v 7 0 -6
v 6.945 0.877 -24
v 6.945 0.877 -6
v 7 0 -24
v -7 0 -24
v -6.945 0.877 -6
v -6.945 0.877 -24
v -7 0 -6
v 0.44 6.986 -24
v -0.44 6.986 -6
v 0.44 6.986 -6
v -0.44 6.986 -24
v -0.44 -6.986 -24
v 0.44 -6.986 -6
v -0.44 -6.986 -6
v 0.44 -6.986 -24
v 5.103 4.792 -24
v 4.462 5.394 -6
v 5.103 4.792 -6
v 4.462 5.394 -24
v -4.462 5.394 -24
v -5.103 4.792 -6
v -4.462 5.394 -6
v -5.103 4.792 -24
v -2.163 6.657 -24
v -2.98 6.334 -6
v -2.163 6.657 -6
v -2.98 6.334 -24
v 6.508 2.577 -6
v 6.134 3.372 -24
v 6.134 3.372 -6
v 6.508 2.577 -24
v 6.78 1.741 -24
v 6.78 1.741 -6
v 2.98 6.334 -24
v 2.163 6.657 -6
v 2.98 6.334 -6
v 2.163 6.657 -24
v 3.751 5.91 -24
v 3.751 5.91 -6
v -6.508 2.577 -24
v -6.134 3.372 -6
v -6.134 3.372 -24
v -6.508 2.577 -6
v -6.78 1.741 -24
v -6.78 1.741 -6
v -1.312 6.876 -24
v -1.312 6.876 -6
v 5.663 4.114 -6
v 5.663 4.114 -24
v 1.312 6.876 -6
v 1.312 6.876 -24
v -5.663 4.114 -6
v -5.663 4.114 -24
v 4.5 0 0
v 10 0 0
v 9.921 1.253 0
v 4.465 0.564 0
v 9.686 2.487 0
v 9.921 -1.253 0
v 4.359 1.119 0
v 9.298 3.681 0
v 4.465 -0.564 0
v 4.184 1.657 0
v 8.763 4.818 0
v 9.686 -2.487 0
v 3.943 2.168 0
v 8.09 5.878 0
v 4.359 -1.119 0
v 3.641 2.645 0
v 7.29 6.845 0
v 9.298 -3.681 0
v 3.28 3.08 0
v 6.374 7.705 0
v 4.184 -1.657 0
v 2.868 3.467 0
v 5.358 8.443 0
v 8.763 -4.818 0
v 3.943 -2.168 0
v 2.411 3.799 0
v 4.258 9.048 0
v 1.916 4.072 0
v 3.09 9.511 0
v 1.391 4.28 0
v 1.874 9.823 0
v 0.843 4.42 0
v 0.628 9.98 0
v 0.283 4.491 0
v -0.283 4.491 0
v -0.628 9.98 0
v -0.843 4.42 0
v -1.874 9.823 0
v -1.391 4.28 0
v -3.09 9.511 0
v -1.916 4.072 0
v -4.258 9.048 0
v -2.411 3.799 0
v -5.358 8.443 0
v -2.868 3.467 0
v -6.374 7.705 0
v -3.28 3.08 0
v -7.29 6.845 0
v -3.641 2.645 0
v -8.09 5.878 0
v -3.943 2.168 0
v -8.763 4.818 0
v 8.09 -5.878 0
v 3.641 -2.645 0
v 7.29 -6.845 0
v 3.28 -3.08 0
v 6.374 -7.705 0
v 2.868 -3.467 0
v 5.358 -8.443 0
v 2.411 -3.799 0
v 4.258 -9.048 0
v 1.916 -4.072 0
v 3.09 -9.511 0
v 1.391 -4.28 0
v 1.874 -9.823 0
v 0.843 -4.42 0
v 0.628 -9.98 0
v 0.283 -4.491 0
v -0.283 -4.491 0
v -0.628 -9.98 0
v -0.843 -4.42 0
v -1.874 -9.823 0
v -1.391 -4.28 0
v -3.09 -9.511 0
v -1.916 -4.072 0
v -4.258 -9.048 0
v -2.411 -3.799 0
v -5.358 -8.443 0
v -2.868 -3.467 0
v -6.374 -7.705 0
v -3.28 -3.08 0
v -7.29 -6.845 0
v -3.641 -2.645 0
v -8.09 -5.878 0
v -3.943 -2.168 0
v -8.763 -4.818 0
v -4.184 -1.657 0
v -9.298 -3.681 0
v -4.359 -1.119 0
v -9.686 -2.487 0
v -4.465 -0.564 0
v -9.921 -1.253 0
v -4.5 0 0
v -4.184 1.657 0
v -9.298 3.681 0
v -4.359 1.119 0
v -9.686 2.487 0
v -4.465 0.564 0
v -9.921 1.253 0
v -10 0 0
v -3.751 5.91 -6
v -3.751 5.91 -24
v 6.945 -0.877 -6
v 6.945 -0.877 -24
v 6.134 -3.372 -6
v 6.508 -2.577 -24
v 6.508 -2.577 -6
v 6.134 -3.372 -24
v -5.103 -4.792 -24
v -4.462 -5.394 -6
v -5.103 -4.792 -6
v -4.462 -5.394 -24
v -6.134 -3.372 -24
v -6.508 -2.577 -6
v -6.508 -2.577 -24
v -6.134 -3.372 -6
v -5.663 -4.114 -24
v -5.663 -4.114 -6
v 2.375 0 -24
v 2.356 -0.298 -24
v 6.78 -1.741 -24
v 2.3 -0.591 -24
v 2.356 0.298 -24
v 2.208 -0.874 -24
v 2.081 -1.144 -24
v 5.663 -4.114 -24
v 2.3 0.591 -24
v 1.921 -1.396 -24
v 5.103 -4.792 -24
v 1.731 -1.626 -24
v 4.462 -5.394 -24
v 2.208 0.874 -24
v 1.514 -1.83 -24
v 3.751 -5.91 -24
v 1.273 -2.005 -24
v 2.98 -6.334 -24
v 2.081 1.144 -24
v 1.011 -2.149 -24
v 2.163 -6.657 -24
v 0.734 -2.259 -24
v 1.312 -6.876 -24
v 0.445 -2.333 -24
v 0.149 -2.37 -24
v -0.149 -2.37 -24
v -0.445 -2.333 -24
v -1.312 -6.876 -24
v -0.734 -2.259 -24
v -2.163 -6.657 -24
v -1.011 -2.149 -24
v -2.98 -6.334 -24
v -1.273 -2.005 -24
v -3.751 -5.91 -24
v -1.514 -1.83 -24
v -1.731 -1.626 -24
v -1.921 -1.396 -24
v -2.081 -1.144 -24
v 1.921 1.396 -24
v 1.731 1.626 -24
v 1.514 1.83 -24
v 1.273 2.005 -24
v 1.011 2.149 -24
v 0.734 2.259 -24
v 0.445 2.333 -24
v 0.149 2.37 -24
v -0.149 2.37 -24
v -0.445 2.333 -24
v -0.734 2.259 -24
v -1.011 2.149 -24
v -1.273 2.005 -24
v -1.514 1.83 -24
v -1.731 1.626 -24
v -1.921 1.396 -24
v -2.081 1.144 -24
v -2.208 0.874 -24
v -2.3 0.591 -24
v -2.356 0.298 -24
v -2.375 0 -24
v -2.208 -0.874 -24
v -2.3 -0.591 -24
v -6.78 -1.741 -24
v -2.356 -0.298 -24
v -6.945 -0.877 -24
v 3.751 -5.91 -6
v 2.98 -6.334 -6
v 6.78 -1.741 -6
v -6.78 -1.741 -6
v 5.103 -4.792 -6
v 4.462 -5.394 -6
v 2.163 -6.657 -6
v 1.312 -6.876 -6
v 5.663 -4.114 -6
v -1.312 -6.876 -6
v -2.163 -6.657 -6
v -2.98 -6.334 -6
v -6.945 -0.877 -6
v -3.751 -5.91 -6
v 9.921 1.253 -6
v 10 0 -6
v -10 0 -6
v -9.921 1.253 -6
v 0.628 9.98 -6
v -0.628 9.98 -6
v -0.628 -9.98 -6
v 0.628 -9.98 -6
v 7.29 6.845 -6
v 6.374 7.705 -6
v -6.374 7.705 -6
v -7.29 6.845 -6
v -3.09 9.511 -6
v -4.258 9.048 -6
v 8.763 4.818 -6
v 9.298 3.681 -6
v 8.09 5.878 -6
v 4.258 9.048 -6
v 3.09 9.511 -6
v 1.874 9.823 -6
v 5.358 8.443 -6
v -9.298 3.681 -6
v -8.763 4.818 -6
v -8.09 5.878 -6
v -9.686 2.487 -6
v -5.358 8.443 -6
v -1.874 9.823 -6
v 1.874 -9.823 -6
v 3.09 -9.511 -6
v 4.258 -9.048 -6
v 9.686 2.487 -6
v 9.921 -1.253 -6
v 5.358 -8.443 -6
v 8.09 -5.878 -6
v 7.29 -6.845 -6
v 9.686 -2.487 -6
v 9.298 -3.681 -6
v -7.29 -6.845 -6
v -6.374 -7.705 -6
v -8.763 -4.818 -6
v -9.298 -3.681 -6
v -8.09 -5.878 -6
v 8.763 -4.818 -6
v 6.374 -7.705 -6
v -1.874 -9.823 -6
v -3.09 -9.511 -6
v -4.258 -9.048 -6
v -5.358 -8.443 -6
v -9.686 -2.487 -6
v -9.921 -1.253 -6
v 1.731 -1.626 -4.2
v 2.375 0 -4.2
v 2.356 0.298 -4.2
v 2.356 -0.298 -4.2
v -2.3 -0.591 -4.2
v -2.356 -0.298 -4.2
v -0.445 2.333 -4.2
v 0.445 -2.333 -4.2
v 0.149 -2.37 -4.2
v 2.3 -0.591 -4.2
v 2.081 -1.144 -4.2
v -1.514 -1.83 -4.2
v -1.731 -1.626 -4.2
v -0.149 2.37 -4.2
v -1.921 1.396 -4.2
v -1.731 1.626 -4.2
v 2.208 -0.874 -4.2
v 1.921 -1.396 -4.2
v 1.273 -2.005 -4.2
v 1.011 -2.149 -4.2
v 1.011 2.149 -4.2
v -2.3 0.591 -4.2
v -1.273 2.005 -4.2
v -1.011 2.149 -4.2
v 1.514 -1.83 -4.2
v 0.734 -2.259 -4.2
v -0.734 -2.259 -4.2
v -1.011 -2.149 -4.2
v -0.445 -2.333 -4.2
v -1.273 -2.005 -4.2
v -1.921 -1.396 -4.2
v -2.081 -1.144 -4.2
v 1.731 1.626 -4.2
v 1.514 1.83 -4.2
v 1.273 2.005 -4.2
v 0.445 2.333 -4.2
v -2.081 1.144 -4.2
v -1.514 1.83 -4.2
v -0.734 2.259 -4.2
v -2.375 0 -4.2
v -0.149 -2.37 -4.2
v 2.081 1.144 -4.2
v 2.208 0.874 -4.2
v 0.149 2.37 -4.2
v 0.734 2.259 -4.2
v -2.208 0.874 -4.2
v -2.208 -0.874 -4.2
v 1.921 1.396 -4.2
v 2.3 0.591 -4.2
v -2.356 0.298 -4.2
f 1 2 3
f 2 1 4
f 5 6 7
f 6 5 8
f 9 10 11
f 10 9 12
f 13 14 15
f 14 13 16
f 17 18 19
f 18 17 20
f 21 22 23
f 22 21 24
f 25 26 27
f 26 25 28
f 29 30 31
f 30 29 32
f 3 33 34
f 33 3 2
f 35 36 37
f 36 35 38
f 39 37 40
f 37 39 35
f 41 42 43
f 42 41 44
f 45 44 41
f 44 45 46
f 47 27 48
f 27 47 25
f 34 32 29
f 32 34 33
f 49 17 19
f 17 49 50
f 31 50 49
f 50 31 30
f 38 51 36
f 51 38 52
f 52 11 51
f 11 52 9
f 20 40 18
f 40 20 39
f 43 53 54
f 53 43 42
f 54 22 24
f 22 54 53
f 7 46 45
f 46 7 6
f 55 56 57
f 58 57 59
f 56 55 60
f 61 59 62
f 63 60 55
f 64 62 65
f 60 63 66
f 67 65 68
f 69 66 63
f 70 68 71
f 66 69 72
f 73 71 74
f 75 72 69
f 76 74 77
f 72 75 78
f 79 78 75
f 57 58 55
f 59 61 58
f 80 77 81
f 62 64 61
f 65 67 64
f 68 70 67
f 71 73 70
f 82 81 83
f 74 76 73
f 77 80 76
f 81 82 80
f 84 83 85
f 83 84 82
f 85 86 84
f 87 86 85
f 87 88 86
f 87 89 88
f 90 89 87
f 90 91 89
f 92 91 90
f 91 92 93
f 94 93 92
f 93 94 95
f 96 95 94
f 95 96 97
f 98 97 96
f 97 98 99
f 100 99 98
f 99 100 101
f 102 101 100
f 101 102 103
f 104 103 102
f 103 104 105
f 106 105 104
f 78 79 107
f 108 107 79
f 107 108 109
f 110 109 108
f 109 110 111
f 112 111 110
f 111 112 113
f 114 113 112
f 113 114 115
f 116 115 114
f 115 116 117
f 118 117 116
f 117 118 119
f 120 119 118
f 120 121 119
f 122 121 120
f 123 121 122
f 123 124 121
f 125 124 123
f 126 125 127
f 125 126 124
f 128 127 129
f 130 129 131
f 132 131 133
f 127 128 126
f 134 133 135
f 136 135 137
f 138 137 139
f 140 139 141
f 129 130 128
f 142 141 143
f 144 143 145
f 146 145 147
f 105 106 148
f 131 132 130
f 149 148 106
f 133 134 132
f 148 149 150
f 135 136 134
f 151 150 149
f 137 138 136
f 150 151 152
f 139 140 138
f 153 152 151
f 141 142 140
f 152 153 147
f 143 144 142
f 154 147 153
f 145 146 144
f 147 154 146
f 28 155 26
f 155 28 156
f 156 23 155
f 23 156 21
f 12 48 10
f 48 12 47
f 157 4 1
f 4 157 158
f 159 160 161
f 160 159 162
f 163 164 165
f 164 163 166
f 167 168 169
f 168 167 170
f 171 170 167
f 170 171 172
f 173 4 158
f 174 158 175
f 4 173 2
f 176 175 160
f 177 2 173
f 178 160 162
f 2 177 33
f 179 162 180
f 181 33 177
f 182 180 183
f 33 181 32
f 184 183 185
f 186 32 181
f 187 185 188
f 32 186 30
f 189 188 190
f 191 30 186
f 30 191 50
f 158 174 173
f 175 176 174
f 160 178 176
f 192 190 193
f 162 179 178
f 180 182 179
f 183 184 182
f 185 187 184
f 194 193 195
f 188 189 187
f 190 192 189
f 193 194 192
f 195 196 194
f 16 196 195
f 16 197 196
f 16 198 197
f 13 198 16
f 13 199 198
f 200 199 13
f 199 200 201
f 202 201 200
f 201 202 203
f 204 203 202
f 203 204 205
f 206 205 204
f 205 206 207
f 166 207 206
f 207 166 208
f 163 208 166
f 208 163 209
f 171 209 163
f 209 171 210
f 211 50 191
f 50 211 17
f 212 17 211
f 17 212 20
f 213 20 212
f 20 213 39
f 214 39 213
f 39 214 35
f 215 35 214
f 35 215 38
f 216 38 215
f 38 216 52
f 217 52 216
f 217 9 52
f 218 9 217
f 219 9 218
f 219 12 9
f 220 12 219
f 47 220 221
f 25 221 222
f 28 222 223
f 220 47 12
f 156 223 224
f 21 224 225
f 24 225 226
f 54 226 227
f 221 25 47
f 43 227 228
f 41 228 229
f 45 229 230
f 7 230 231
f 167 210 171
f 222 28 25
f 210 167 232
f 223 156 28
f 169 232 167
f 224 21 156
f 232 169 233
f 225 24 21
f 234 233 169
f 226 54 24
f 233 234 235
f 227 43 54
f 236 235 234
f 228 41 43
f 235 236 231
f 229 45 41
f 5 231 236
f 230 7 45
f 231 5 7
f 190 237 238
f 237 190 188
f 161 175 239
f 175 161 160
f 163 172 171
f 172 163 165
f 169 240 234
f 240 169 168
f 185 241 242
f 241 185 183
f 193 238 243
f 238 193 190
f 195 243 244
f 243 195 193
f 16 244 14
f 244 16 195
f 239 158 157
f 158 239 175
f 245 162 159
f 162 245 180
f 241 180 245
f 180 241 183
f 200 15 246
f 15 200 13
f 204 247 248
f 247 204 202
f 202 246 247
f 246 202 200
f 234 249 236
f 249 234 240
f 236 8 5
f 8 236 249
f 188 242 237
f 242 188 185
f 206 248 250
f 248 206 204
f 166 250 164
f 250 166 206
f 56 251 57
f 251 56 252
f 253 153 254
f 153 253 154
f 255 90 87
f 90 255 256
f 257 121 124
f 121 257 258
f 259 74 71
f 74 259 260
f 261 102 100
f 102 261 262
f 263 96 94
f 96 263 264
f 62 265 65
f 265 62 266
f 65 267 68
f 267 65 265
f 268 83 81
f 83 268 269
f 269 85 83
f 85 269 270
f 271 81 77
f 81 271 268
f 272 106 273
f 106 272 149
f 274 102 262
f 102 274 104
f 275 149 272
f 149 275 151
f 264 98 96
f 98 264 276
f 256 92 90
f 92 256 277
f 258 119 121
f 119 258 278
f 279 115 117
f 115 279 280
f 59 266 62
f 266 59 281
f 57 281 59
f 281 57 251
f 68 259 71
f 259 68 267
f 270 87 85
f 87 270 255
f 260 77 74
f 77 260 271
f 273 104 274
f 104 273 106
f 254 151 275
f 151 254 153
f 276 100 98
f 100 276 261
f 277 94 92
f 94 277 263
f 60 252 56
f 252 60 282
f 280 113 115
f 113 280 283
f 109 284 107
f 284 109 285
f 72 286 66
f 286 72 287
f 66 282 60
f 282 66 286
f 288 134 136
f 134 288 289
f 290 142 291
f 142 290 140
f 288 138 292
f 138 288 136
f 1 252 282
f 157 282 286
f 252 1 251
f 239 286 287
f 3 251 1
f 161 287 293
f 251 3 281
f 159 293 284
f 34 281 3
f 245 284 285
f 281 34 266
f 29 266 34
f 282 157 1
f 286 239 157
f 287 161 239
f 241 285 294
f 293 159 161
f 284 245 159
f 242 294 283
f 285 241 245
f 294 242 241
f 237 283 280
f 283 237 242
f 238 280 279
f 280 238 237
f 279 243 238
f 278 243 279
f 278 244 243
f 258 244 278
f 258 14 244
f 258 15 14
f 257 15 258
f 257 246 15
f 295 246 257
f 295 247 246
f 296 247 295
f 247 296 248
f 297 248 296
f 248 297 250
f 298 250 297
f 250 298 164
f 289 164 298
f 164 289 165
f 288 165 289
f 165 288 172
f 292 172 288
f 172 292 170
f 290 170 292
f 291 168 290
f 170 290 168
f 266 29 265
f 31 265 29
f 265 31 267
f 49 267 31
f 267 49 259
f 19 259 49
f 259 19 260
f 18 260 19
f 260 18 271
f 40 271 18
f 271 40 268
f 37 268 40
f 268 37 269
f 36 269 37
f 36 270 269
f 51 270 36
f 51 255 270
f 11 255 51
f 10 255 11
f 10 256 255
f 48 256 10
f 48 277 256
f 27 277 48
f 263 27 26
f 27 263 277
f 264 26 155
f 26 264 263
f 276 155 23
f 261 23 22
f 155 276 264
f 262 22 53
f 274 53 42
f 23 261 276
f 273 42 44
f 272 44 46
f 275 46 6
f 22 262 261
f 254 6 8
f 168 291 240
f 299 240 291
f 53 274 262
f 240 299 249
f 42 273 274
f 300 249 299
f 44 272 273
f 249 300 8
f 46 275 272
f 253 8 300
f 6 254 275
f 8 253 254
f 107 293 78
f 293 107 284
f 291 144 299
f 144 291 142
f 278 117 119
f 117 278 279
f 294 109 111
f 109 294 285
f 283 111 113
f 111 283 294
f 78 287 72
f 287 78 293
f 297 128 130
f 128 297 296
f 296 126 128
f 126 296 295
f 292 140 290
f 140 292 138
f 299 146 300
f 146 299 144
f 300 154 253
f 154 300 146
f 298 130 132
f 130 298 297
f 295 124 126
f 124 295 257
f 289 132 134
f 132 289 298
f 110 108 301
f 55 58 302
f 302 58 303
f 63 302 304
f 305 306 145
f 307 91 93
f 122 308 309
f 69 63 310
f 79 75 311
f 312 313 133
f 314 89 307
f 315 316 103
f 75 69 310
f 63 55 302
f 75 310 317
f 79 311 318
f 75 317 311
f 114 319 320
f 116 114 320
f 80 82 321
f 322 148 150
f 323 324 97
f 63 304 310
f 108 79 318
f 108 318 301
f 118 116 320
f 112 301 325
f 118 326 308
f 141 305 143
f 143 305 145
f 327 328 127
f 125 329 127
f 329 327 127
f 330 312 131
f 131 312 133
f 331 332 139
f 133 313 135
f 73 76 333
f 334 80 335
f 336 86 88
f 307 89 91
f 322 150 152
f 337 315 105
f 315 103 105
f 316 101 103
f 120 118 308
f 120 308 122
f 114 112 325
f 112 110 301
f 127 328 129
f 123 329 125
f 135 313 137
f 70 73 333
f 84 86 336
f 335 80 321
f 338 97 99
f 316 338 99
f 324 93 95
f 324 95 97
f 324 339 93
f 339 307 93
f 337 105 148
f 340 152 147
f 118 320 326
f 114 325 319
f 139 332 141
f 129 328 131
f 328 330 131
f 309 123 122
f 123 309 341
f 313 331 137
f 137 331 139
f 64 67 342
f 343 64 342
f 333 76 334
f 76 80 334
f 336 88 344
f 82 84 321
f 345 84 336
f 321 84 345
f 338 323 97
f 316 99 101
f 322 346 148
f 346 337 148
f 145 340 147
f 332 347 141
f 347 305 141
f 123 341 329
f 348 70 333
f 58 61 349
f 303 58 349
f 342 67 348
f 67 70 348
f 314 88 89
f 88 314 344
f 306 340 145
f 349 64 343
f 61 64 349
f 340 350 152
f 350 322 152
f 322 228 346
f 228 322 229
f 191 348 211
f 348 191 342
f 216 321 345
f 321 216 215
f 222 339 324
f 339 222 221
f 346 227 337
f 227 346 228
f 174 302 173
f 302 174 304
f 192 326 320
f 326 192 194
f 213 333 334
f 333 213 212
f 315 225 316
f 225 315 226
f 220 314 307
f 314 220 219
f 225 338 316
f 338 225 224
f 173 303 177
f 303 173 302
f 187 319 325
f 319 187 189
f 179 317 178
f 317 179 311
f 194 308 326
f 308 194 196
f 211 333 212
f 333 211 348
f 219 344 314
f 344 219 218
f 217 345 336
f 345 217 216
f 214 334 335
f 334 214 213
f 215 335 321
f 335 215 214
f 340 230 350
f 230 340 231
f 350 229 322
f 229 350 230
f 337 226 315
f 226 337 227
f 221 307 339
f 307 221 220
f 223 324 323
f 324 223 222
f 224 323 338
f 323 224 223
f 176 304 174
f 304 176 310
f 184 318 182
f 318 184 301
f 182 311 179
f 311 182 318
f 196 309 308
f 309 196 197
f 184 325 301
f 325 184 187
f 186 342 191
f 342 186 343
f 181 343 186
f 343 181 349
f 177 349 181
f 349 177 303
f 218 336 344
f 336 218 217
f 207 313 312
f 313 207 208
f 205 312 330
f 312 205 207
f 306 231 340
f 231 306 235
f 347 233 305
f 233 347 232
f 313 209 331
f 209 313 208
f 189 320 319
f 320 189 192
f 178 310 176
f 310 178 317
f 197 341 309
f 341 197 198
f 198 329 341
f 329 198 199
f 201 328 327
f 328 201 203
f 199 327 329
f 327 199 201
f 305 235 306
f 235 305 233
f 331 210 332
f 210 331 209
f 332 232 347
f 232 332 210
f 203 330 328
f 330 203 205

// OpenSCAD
$fn = 50;


difference() {
	union() {
		translate(v = [0, 0, -24.0000000000]) {
			cylinder(h = 24, r = 7.0000000000);
		}
		translate(v = [0, 0, -6.0000000000]) {
			cylinder(h = 6, r = 10.0000000000);
		}
	}
	union() {
		translate(v = [0, 0, 0]) {
			rotate(a = [0, 0, 0]) {
				difference() {
					union() {
						#translate(v = [0, 0, -24.0000000000]) {
							cylinder(h = 24, r = 2.2500000000);
						}
						#translate(v = [0, 0, -4.2000000000]) {
							cylinder(h = 4.2000000000, r1 = 2.3750000000, r2 = 4.5000000000);
						}
						#translate(v = [0, 0, -24.0000000000]) {
							cylinder(h = 24, r = 2.3750000000);
						}
						#translate(v = [0, 0, -24.0000000000]) {
							cylinder(h = 24, r = 2.2500000000);
						}
					}
					union();
				}
			}
		}
	}
}
